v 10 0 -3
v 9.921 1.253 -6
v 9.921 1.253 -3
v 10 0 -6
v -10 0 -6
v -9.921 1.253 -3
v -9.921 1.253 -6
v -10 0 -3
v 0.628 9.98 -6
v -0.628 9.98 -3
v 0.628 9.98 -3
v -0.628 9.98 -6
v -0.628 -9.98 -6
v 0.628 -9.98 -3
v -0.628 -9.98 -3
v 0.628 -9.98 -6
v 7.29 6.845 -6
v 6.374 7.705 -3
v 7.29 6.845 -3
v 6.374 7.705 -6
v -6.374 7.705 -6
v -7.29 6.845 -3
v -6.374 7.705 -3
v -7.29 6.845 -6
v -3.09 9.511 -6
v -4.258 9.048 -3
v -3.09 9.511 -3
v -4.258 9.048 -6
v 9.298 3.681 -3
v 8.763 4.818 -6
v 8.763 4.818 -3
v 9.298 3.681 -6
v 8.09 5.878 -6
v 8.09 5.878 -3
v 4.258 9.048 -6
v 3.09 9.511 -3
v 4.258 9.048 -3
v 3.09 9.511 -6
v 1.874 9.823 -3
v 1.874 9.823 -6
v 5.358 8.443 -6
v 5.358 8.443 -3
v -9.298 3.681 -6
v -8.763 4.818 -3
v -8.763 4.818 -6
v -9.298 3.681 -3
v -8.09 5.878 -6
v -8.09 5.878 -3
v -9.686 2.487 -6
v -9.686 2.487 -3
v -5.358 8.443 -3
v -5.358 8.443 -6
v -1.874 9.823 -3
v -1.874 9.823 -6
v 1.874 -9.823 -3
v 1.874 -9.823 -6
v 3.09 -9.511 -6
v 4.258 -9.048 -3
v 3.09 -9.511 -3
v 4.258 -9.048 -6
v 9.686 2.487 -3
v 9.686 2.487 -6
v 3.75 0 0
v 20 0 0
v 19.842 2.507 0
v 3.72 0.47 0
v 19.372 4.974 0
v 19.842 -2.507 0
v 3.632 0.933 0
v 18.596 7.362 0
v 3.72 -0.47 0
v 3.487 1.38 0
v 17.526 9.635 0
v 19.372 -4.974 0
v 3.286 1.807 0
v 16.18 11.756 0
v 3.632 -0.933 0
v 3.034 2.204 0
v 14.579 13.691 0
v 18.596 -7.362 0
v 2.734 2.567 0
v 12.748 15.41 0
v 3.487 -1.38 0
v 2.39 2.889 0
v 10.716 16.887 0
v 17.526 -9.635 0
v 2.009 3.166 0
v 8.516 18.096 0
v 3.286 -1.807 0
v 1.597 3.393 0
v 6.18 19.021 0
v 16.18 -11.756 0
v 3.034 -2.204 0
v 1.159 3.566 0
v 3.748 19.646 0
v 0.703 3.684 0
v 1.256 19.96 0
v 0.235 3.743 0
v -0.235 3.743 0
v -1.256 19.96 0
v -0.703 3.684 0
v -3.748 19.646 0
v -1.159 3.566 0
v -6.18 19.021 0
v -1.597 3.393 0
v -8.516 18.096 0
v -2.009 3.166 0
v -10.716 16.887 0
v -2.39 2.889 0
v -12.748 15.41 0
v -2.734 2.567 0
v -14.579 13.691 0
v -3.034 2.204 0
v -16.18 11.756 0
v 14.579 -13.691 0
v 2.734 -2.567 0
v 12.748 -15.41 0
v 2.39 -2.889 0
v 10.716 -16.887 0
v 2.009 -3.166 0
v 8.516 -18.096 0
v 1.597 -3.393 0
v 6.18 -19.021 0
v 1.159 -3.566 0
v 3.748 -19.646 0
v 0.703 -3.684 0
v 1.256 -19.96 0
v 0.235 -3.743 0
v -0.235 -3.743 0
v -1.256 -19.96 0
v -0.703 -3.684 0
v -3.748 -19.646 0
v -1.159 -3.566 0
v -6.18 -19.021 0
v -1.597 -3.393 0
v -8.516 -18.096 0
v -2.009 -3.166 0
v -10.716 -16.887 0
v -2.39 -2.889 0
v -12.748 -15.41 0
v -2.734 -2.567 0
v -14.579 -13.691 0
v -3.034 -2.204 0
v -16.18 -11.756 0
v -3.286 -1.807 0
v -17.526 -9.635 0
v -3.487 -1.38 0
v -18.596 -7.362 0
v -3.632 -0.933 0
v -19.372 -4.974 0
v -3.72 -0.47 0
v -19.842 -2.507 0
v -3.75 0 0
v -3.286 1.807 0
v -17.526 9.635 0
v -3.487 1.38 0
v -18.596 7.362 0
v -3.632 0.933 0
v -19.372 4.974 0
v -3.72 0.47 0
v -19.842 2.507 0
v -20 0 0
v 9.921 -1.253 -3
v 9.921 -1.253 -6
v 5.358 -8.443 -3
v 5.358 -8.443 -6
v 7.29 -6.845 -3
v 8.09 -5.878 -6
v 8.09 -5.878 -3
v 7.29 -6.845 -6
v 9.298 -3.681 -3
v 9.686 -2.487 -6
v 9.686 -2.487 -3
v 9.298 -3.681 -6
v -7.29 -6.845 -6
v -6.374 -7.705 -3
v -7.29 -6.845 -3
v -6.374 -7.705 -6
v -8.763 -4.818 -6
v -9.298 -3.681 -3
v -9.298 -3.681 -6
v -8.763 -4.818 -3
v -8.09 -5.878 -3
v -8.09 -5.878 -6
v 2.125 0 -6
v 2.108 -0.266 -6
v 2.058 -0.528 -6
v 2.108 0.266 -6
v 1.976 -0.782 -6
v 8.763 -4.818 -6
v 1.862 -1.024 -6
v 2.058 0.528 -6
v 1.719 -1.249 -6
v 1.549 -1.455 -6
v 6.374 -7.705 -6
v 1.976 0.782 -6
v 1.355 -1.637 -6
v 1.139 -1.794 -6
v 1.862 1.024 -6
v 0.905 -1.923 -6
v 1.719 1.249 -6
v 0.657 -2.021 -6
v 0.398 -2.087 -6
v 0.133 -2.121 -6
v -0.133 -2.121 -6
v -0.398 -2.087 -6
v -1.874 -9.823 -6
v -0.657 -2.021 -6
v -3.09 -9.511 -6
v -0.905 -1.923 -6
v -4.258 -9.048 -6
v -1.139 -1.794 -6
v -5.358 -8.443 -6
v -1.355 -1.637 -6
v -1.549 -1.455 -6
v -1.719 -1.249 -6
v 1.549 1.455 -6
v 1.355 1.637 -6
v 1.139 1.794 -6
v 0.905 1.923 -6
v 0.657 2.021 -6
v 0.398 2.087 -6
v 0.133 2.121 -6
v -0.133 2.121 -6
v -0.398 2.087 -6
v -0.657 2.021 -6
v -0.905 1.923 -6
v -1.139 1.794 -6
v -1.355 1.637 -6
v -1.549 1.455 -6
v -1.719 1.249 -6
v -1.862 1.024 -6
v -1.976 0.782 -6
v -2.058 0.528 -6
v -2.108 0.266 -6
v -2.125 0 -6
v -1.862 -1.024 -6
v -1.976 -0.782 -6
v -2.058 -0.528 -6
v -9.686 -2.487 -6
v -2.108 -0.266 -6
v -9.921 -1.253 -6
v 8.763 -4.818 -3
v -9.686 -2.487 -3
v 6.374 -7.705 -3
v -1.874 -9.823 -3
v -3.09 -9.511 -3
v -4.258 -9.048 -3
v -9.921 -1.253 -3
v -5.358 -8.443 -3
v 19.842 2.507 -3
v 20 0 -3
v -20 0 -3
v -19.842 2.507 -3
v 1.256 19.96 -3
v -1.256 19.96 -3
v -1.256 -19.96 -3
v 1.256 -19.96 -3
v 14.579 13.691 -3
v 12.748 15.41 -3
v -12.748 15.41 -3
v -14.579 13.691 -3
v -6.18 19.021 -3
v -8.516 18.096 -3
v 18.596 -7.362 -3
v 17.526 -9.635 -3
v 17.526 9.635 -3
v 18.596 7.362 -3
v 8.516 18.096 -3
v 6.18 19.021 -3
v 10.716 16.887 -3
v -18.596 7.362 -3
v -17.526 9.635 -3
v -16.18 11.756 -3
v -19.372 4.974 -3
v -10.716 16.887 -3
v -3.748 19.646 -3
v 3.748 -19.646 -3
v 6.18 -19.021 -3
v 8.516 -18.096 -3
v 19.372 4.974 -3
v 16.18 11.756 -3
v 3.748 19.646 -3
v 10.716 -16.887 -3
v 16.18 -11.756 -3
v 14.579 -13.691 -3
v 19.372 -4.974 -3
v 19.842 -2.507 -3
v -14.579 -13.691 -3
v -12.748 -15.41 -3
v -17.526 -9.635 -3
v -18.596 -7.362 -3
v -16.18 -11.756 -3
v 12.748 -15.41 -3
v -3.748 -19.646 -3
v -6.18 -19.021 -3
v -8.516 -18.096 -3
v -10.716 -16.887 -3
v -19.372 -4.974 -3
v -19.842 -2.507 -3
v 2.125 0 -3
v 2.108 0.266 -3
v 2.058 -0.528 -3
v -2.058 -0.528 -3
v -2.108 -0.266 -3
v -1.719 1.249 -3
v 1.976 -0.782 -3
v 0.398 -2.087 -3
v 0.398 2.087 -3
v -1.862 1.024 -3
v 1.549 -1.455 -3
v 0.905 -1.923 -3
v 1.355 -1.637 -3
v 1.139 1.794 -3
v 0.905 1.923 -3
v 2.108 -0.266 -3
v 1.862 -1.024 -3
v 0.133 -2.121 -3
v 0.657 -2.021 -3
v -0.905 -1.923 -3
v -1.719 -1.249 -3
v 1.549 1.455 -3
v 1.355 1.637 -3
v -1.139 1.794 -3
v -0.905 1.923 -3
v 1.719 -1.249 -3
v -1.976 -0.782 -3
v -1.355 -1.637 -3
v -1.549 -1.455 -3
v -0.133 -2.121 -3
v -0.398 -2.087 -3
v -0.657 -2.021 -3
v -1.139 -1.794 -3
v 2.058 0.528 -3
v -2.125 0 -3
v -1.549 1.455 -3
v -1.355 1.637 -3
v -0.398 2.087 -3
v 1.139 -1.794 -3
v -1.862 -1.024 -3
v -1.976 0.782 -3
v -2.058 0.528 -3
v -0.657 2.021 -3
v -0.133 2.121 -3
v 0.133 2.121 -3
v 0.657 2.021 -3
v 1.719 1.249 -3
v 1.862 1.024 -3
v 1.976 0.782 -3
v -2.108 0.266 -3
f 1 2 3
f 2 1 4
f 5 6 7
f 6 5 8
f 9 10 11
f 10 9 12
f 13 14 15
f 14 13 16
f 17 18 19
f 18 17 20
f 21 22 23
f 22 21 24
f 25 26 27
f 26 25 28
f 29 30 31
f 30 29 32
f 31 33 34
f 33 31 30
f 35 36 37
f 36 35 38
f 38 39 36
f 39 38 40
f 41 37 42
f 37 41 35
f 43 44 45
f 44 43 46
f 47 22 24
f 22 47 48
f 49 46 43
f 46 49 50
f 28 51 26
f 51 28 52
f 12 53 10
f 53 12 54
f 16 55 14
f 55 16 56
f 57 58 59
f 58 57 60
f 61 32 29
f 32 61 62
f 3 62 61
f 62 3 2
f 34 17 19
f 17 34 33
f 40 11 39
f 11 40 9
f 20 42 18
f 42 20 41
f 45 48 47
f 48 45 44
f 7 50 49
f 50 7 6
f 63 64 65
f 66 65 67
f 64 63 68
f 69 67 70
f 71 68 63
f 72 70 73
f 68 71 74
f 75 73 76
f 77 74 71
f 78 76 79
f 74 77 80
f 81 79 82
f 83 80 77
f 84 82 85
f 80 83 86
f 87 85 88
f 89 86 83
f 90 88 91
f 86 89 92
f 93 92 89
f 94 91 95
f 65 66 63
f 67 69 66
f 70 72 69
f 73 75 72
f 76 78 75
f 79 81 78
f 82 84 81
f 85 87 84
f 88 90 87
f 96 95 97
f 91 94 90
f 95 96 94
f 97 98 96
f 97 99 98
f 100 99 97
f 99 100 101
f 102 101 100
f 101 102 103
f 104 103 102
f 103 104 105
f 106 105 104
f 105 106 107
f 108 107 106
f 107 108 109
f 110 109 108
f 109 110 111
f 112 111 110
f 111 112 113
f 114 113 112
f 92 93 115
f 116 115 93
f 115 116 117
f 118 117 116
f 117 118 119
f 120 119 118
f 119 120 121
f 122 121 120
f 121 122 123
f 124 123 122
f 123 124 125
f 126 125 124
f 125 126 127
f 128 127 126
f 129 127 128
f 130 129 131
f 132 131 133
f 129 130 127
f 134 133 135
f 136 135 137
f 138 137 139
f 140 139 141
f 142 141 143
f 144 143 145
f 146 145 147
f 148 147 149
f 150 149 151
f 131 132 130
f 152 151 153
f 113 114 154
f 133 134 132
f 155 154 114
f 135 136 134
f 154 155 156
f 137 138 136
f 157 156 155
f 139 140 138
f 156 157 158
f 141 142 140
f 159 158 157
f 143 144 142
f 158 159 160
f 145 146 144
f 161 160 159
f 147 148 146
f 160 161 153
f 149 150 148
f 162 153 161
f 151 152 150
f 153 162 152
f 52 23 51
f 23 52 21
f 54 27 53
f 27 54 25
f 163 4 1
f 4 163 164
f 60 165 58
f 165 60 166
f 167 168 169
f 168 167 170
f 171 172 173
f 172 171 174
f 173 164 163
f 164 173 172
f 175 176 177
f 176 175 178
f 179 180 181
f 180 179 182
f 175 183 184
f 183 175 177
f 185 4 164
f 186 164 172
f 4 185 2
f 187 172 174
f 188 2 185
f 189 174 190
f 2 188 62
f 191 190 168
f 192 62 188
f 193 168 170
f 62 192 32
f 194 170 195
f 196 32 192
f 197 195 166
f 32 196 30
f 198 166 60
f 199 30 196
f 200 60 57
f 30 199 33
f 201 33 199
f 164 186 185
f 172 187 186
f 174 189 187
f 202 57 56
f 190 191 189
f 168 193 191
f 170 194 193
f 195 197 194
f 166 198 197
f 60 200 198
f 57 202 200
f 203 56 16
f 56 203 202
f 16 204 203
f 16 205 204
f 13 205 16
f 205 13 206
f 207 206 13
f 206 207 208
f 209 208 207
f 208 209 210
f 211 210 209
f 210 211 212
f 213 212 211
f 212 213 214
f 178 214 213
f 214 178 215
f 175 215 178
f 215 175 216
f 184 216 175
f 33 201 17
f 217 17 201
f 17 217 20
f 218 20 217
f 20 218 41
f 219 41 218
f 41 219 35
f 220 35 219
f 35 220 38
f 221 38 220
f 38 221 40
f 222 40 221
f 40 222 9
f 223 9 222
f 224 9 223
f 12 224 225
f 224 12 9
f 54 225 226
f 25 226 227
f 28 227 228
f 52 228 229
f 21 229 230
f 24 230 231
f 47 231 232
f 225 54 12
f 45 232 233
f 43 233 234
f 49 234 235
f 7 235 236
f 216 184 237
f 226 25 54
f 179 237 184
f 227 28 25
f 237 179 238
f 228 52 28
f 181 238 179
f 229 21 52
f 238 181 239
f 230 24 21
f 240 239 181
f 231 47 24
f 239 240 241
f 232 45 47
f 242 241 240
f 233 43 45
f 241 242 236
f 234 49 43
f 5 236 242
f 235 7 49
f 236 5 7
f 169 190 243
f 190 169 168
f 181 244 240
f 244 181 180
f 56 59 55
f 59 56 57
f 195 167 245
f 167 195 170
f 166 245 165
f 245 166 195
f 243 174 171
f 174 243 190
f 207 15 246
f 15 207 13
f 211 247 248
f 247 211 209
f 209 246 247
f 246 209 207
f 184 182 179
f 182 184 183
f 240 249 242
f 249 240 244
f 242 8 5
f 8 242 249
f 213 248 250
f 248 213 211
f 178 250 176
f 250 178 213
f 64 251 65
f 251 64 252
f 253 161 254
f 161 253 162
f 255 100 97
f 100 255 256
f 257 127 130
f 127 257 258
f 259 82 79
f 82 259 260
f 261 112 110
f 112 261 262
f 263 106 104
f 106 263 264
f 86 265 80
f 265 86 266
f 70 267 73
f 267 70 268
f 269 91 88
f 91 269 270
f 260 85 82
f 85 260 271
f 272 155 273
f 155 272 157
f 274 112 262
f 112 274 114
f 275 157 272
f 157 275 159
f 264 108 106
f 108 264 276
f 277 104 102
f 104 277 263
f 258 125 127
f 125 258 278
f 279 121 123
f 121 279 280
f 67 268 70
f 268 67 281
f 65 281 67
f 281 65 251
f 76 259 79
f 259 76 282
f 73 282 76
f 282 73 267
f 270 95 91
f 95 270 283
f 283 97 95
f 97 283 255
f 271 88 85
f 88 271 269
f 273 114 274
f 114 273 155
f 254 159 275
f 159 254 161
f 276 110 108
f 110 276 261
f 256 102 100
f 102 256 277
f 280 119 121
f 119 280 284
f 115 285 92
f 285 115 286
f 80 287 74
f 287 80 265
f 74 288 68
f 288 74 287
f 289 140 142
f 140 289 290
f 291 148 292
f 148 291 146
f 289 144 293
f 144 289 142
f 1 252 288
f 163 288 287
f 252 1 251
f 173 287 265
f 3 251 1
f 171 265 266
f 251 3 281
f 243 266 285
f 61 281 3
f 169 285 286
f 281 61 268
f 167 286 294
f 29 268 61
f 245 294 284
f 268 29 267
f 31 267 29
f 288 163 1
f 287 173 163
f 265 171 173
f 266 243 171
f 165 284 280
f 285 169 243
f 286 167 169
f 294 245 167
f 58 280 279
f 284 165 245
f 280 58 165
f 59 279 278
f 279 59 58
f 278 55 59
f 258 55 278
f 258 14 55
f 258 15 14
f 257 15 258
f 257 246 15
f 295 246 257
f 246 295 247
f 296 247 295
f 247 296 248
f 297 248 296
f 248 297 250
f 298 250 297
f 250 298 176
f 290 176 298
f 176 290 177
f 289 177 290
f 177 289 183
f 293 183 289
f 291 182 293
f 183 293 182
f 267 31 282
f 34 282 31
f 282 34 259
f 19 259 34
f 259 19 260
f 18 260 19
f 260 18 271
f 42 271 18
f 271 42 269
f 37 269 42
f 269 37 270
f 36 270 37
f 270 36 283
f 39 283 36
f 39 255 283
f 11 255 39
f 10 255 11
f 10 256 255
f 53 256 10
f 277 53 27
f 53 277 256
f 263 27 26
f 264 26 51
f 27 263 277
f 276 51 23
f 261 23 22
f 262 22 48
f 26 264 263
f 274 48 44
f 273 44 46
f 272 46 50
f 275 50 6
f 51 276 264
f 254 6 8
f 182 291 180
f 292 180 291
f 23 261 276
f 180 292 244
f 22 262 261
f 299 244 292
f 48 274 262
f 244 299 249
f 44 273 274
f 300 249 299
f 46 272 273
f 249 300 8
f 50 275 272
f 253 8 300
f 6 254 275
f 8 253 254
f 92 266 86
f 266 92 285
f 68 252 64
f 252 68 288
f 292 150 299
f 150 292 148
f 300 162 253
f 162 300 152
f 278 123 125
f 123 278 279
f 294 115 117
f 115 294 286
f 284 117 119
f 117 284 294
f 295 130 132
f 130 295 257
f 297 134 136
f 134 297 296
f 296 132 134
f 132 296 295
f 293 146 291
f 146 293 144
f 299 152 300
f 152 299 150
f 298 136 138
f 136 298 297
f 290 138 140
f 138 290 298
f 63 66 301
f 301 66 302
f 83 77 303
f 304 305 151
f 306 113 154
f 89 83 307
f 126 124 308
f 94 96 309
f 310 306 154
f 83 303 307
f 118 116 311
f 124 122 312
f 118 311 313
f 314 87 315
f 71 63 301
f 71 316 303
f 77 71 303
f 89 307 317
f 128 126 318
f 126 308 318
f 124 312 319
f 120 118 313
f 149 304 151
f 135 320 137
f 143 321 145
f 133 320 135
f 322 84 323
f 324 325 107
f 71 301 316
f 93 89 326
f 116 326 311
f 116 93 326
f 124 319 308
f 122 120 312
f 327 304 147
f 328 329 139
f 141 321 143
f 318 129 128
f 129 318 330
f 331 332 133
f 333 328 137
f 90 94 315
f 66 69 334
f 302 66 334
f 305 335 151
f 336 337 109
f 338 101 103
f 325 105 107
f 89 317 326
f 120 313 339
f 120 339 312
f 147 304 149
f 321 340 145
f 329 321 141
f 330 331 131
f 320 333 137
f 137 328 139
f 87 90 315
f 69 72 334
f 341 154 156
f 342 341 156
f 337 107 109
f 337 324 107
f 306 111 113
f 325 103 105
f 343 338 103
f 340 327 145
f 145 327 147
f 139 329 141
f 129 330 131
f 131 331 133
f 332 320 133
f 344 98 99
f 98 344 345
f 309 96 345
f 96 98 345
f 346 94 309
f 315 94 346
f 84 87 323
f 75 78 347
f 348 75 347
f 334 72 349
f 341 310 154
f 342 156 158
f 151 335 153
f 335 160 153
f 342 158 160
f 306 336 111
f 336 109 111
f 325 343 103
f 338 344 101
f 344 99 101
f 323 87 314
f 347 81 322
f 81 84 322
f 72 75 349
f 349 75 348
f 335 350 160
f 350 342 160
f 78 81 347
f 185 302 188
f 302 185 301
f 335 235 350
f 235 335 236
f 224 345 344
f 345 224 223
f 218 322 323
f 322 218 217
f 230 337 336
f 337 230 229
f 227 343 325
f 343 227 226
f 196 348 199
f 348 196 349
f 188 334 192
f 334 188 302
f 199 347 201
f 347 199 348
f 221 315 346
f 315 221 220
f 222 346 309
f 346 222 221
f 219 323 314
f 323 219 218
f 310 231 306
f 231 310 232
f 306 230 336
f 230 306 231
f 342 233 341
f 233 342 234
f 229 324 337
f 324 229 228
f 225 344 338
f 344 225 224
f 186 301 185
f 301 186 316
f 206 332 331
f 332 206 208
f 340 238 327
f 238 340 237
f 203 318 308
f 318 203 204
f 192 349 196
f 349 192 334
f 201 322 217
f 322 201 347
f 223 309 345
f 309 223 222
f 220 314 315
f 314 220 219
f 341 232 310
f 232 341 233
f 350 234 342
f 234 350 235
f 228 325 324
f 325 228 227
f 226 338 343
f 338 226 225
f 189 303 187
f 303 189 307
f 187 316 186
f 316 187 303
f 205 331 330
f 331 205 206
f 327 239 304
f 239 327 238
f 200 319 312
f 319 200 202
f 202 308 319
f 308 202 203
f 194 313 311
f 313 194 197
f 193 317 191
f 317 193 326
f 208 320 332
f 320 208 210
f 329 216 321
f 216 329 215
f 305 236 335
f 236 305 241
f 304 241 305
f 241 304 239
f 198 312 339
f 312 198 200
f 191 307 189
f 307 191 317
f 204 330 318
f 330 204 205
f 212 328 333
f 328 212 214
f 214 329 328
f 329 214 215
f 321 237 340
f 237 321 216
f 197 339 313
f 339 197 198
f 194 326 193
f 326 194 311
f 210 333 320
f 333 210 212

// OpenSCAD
$fn = 50;


difference() {
	union() {
		translate(v = [0, 0, -6.0000000000]) {
			cylinder(h = 6, r = 10.0000000000);
		}
		translate(v = [0, 0, -3.0000000000]) {
			cylinder(h = 3, r = 20.0000000000);
		}
	}
	union() {
		translate(v = [0, 0, 0]) {
			rotate(a = [0, 0, 0]) {
				difference() {
					union() {
						#translate(v = [0, 0, -6.0000000000]) {
							cylinder(h = 6, r = 2.0000000000);
						}
						#translate(v = [0, 0, -3]) {
							cylinder(h = 3, r = 10.0000000000, r1 = 2.1250000000, r2 = 3.7500000000);
						}
						#translate(v = [0, 0, -6.0000000000]) {
							cylinder(h = 6, r = 2.1250000000);
						}
						#translate(v = [0, 0, -6.0000000000]) {
							cylinder(h = 6, r = 2.0000000000);
						}
					}
					union();
				}
			}
		}
	}
}
